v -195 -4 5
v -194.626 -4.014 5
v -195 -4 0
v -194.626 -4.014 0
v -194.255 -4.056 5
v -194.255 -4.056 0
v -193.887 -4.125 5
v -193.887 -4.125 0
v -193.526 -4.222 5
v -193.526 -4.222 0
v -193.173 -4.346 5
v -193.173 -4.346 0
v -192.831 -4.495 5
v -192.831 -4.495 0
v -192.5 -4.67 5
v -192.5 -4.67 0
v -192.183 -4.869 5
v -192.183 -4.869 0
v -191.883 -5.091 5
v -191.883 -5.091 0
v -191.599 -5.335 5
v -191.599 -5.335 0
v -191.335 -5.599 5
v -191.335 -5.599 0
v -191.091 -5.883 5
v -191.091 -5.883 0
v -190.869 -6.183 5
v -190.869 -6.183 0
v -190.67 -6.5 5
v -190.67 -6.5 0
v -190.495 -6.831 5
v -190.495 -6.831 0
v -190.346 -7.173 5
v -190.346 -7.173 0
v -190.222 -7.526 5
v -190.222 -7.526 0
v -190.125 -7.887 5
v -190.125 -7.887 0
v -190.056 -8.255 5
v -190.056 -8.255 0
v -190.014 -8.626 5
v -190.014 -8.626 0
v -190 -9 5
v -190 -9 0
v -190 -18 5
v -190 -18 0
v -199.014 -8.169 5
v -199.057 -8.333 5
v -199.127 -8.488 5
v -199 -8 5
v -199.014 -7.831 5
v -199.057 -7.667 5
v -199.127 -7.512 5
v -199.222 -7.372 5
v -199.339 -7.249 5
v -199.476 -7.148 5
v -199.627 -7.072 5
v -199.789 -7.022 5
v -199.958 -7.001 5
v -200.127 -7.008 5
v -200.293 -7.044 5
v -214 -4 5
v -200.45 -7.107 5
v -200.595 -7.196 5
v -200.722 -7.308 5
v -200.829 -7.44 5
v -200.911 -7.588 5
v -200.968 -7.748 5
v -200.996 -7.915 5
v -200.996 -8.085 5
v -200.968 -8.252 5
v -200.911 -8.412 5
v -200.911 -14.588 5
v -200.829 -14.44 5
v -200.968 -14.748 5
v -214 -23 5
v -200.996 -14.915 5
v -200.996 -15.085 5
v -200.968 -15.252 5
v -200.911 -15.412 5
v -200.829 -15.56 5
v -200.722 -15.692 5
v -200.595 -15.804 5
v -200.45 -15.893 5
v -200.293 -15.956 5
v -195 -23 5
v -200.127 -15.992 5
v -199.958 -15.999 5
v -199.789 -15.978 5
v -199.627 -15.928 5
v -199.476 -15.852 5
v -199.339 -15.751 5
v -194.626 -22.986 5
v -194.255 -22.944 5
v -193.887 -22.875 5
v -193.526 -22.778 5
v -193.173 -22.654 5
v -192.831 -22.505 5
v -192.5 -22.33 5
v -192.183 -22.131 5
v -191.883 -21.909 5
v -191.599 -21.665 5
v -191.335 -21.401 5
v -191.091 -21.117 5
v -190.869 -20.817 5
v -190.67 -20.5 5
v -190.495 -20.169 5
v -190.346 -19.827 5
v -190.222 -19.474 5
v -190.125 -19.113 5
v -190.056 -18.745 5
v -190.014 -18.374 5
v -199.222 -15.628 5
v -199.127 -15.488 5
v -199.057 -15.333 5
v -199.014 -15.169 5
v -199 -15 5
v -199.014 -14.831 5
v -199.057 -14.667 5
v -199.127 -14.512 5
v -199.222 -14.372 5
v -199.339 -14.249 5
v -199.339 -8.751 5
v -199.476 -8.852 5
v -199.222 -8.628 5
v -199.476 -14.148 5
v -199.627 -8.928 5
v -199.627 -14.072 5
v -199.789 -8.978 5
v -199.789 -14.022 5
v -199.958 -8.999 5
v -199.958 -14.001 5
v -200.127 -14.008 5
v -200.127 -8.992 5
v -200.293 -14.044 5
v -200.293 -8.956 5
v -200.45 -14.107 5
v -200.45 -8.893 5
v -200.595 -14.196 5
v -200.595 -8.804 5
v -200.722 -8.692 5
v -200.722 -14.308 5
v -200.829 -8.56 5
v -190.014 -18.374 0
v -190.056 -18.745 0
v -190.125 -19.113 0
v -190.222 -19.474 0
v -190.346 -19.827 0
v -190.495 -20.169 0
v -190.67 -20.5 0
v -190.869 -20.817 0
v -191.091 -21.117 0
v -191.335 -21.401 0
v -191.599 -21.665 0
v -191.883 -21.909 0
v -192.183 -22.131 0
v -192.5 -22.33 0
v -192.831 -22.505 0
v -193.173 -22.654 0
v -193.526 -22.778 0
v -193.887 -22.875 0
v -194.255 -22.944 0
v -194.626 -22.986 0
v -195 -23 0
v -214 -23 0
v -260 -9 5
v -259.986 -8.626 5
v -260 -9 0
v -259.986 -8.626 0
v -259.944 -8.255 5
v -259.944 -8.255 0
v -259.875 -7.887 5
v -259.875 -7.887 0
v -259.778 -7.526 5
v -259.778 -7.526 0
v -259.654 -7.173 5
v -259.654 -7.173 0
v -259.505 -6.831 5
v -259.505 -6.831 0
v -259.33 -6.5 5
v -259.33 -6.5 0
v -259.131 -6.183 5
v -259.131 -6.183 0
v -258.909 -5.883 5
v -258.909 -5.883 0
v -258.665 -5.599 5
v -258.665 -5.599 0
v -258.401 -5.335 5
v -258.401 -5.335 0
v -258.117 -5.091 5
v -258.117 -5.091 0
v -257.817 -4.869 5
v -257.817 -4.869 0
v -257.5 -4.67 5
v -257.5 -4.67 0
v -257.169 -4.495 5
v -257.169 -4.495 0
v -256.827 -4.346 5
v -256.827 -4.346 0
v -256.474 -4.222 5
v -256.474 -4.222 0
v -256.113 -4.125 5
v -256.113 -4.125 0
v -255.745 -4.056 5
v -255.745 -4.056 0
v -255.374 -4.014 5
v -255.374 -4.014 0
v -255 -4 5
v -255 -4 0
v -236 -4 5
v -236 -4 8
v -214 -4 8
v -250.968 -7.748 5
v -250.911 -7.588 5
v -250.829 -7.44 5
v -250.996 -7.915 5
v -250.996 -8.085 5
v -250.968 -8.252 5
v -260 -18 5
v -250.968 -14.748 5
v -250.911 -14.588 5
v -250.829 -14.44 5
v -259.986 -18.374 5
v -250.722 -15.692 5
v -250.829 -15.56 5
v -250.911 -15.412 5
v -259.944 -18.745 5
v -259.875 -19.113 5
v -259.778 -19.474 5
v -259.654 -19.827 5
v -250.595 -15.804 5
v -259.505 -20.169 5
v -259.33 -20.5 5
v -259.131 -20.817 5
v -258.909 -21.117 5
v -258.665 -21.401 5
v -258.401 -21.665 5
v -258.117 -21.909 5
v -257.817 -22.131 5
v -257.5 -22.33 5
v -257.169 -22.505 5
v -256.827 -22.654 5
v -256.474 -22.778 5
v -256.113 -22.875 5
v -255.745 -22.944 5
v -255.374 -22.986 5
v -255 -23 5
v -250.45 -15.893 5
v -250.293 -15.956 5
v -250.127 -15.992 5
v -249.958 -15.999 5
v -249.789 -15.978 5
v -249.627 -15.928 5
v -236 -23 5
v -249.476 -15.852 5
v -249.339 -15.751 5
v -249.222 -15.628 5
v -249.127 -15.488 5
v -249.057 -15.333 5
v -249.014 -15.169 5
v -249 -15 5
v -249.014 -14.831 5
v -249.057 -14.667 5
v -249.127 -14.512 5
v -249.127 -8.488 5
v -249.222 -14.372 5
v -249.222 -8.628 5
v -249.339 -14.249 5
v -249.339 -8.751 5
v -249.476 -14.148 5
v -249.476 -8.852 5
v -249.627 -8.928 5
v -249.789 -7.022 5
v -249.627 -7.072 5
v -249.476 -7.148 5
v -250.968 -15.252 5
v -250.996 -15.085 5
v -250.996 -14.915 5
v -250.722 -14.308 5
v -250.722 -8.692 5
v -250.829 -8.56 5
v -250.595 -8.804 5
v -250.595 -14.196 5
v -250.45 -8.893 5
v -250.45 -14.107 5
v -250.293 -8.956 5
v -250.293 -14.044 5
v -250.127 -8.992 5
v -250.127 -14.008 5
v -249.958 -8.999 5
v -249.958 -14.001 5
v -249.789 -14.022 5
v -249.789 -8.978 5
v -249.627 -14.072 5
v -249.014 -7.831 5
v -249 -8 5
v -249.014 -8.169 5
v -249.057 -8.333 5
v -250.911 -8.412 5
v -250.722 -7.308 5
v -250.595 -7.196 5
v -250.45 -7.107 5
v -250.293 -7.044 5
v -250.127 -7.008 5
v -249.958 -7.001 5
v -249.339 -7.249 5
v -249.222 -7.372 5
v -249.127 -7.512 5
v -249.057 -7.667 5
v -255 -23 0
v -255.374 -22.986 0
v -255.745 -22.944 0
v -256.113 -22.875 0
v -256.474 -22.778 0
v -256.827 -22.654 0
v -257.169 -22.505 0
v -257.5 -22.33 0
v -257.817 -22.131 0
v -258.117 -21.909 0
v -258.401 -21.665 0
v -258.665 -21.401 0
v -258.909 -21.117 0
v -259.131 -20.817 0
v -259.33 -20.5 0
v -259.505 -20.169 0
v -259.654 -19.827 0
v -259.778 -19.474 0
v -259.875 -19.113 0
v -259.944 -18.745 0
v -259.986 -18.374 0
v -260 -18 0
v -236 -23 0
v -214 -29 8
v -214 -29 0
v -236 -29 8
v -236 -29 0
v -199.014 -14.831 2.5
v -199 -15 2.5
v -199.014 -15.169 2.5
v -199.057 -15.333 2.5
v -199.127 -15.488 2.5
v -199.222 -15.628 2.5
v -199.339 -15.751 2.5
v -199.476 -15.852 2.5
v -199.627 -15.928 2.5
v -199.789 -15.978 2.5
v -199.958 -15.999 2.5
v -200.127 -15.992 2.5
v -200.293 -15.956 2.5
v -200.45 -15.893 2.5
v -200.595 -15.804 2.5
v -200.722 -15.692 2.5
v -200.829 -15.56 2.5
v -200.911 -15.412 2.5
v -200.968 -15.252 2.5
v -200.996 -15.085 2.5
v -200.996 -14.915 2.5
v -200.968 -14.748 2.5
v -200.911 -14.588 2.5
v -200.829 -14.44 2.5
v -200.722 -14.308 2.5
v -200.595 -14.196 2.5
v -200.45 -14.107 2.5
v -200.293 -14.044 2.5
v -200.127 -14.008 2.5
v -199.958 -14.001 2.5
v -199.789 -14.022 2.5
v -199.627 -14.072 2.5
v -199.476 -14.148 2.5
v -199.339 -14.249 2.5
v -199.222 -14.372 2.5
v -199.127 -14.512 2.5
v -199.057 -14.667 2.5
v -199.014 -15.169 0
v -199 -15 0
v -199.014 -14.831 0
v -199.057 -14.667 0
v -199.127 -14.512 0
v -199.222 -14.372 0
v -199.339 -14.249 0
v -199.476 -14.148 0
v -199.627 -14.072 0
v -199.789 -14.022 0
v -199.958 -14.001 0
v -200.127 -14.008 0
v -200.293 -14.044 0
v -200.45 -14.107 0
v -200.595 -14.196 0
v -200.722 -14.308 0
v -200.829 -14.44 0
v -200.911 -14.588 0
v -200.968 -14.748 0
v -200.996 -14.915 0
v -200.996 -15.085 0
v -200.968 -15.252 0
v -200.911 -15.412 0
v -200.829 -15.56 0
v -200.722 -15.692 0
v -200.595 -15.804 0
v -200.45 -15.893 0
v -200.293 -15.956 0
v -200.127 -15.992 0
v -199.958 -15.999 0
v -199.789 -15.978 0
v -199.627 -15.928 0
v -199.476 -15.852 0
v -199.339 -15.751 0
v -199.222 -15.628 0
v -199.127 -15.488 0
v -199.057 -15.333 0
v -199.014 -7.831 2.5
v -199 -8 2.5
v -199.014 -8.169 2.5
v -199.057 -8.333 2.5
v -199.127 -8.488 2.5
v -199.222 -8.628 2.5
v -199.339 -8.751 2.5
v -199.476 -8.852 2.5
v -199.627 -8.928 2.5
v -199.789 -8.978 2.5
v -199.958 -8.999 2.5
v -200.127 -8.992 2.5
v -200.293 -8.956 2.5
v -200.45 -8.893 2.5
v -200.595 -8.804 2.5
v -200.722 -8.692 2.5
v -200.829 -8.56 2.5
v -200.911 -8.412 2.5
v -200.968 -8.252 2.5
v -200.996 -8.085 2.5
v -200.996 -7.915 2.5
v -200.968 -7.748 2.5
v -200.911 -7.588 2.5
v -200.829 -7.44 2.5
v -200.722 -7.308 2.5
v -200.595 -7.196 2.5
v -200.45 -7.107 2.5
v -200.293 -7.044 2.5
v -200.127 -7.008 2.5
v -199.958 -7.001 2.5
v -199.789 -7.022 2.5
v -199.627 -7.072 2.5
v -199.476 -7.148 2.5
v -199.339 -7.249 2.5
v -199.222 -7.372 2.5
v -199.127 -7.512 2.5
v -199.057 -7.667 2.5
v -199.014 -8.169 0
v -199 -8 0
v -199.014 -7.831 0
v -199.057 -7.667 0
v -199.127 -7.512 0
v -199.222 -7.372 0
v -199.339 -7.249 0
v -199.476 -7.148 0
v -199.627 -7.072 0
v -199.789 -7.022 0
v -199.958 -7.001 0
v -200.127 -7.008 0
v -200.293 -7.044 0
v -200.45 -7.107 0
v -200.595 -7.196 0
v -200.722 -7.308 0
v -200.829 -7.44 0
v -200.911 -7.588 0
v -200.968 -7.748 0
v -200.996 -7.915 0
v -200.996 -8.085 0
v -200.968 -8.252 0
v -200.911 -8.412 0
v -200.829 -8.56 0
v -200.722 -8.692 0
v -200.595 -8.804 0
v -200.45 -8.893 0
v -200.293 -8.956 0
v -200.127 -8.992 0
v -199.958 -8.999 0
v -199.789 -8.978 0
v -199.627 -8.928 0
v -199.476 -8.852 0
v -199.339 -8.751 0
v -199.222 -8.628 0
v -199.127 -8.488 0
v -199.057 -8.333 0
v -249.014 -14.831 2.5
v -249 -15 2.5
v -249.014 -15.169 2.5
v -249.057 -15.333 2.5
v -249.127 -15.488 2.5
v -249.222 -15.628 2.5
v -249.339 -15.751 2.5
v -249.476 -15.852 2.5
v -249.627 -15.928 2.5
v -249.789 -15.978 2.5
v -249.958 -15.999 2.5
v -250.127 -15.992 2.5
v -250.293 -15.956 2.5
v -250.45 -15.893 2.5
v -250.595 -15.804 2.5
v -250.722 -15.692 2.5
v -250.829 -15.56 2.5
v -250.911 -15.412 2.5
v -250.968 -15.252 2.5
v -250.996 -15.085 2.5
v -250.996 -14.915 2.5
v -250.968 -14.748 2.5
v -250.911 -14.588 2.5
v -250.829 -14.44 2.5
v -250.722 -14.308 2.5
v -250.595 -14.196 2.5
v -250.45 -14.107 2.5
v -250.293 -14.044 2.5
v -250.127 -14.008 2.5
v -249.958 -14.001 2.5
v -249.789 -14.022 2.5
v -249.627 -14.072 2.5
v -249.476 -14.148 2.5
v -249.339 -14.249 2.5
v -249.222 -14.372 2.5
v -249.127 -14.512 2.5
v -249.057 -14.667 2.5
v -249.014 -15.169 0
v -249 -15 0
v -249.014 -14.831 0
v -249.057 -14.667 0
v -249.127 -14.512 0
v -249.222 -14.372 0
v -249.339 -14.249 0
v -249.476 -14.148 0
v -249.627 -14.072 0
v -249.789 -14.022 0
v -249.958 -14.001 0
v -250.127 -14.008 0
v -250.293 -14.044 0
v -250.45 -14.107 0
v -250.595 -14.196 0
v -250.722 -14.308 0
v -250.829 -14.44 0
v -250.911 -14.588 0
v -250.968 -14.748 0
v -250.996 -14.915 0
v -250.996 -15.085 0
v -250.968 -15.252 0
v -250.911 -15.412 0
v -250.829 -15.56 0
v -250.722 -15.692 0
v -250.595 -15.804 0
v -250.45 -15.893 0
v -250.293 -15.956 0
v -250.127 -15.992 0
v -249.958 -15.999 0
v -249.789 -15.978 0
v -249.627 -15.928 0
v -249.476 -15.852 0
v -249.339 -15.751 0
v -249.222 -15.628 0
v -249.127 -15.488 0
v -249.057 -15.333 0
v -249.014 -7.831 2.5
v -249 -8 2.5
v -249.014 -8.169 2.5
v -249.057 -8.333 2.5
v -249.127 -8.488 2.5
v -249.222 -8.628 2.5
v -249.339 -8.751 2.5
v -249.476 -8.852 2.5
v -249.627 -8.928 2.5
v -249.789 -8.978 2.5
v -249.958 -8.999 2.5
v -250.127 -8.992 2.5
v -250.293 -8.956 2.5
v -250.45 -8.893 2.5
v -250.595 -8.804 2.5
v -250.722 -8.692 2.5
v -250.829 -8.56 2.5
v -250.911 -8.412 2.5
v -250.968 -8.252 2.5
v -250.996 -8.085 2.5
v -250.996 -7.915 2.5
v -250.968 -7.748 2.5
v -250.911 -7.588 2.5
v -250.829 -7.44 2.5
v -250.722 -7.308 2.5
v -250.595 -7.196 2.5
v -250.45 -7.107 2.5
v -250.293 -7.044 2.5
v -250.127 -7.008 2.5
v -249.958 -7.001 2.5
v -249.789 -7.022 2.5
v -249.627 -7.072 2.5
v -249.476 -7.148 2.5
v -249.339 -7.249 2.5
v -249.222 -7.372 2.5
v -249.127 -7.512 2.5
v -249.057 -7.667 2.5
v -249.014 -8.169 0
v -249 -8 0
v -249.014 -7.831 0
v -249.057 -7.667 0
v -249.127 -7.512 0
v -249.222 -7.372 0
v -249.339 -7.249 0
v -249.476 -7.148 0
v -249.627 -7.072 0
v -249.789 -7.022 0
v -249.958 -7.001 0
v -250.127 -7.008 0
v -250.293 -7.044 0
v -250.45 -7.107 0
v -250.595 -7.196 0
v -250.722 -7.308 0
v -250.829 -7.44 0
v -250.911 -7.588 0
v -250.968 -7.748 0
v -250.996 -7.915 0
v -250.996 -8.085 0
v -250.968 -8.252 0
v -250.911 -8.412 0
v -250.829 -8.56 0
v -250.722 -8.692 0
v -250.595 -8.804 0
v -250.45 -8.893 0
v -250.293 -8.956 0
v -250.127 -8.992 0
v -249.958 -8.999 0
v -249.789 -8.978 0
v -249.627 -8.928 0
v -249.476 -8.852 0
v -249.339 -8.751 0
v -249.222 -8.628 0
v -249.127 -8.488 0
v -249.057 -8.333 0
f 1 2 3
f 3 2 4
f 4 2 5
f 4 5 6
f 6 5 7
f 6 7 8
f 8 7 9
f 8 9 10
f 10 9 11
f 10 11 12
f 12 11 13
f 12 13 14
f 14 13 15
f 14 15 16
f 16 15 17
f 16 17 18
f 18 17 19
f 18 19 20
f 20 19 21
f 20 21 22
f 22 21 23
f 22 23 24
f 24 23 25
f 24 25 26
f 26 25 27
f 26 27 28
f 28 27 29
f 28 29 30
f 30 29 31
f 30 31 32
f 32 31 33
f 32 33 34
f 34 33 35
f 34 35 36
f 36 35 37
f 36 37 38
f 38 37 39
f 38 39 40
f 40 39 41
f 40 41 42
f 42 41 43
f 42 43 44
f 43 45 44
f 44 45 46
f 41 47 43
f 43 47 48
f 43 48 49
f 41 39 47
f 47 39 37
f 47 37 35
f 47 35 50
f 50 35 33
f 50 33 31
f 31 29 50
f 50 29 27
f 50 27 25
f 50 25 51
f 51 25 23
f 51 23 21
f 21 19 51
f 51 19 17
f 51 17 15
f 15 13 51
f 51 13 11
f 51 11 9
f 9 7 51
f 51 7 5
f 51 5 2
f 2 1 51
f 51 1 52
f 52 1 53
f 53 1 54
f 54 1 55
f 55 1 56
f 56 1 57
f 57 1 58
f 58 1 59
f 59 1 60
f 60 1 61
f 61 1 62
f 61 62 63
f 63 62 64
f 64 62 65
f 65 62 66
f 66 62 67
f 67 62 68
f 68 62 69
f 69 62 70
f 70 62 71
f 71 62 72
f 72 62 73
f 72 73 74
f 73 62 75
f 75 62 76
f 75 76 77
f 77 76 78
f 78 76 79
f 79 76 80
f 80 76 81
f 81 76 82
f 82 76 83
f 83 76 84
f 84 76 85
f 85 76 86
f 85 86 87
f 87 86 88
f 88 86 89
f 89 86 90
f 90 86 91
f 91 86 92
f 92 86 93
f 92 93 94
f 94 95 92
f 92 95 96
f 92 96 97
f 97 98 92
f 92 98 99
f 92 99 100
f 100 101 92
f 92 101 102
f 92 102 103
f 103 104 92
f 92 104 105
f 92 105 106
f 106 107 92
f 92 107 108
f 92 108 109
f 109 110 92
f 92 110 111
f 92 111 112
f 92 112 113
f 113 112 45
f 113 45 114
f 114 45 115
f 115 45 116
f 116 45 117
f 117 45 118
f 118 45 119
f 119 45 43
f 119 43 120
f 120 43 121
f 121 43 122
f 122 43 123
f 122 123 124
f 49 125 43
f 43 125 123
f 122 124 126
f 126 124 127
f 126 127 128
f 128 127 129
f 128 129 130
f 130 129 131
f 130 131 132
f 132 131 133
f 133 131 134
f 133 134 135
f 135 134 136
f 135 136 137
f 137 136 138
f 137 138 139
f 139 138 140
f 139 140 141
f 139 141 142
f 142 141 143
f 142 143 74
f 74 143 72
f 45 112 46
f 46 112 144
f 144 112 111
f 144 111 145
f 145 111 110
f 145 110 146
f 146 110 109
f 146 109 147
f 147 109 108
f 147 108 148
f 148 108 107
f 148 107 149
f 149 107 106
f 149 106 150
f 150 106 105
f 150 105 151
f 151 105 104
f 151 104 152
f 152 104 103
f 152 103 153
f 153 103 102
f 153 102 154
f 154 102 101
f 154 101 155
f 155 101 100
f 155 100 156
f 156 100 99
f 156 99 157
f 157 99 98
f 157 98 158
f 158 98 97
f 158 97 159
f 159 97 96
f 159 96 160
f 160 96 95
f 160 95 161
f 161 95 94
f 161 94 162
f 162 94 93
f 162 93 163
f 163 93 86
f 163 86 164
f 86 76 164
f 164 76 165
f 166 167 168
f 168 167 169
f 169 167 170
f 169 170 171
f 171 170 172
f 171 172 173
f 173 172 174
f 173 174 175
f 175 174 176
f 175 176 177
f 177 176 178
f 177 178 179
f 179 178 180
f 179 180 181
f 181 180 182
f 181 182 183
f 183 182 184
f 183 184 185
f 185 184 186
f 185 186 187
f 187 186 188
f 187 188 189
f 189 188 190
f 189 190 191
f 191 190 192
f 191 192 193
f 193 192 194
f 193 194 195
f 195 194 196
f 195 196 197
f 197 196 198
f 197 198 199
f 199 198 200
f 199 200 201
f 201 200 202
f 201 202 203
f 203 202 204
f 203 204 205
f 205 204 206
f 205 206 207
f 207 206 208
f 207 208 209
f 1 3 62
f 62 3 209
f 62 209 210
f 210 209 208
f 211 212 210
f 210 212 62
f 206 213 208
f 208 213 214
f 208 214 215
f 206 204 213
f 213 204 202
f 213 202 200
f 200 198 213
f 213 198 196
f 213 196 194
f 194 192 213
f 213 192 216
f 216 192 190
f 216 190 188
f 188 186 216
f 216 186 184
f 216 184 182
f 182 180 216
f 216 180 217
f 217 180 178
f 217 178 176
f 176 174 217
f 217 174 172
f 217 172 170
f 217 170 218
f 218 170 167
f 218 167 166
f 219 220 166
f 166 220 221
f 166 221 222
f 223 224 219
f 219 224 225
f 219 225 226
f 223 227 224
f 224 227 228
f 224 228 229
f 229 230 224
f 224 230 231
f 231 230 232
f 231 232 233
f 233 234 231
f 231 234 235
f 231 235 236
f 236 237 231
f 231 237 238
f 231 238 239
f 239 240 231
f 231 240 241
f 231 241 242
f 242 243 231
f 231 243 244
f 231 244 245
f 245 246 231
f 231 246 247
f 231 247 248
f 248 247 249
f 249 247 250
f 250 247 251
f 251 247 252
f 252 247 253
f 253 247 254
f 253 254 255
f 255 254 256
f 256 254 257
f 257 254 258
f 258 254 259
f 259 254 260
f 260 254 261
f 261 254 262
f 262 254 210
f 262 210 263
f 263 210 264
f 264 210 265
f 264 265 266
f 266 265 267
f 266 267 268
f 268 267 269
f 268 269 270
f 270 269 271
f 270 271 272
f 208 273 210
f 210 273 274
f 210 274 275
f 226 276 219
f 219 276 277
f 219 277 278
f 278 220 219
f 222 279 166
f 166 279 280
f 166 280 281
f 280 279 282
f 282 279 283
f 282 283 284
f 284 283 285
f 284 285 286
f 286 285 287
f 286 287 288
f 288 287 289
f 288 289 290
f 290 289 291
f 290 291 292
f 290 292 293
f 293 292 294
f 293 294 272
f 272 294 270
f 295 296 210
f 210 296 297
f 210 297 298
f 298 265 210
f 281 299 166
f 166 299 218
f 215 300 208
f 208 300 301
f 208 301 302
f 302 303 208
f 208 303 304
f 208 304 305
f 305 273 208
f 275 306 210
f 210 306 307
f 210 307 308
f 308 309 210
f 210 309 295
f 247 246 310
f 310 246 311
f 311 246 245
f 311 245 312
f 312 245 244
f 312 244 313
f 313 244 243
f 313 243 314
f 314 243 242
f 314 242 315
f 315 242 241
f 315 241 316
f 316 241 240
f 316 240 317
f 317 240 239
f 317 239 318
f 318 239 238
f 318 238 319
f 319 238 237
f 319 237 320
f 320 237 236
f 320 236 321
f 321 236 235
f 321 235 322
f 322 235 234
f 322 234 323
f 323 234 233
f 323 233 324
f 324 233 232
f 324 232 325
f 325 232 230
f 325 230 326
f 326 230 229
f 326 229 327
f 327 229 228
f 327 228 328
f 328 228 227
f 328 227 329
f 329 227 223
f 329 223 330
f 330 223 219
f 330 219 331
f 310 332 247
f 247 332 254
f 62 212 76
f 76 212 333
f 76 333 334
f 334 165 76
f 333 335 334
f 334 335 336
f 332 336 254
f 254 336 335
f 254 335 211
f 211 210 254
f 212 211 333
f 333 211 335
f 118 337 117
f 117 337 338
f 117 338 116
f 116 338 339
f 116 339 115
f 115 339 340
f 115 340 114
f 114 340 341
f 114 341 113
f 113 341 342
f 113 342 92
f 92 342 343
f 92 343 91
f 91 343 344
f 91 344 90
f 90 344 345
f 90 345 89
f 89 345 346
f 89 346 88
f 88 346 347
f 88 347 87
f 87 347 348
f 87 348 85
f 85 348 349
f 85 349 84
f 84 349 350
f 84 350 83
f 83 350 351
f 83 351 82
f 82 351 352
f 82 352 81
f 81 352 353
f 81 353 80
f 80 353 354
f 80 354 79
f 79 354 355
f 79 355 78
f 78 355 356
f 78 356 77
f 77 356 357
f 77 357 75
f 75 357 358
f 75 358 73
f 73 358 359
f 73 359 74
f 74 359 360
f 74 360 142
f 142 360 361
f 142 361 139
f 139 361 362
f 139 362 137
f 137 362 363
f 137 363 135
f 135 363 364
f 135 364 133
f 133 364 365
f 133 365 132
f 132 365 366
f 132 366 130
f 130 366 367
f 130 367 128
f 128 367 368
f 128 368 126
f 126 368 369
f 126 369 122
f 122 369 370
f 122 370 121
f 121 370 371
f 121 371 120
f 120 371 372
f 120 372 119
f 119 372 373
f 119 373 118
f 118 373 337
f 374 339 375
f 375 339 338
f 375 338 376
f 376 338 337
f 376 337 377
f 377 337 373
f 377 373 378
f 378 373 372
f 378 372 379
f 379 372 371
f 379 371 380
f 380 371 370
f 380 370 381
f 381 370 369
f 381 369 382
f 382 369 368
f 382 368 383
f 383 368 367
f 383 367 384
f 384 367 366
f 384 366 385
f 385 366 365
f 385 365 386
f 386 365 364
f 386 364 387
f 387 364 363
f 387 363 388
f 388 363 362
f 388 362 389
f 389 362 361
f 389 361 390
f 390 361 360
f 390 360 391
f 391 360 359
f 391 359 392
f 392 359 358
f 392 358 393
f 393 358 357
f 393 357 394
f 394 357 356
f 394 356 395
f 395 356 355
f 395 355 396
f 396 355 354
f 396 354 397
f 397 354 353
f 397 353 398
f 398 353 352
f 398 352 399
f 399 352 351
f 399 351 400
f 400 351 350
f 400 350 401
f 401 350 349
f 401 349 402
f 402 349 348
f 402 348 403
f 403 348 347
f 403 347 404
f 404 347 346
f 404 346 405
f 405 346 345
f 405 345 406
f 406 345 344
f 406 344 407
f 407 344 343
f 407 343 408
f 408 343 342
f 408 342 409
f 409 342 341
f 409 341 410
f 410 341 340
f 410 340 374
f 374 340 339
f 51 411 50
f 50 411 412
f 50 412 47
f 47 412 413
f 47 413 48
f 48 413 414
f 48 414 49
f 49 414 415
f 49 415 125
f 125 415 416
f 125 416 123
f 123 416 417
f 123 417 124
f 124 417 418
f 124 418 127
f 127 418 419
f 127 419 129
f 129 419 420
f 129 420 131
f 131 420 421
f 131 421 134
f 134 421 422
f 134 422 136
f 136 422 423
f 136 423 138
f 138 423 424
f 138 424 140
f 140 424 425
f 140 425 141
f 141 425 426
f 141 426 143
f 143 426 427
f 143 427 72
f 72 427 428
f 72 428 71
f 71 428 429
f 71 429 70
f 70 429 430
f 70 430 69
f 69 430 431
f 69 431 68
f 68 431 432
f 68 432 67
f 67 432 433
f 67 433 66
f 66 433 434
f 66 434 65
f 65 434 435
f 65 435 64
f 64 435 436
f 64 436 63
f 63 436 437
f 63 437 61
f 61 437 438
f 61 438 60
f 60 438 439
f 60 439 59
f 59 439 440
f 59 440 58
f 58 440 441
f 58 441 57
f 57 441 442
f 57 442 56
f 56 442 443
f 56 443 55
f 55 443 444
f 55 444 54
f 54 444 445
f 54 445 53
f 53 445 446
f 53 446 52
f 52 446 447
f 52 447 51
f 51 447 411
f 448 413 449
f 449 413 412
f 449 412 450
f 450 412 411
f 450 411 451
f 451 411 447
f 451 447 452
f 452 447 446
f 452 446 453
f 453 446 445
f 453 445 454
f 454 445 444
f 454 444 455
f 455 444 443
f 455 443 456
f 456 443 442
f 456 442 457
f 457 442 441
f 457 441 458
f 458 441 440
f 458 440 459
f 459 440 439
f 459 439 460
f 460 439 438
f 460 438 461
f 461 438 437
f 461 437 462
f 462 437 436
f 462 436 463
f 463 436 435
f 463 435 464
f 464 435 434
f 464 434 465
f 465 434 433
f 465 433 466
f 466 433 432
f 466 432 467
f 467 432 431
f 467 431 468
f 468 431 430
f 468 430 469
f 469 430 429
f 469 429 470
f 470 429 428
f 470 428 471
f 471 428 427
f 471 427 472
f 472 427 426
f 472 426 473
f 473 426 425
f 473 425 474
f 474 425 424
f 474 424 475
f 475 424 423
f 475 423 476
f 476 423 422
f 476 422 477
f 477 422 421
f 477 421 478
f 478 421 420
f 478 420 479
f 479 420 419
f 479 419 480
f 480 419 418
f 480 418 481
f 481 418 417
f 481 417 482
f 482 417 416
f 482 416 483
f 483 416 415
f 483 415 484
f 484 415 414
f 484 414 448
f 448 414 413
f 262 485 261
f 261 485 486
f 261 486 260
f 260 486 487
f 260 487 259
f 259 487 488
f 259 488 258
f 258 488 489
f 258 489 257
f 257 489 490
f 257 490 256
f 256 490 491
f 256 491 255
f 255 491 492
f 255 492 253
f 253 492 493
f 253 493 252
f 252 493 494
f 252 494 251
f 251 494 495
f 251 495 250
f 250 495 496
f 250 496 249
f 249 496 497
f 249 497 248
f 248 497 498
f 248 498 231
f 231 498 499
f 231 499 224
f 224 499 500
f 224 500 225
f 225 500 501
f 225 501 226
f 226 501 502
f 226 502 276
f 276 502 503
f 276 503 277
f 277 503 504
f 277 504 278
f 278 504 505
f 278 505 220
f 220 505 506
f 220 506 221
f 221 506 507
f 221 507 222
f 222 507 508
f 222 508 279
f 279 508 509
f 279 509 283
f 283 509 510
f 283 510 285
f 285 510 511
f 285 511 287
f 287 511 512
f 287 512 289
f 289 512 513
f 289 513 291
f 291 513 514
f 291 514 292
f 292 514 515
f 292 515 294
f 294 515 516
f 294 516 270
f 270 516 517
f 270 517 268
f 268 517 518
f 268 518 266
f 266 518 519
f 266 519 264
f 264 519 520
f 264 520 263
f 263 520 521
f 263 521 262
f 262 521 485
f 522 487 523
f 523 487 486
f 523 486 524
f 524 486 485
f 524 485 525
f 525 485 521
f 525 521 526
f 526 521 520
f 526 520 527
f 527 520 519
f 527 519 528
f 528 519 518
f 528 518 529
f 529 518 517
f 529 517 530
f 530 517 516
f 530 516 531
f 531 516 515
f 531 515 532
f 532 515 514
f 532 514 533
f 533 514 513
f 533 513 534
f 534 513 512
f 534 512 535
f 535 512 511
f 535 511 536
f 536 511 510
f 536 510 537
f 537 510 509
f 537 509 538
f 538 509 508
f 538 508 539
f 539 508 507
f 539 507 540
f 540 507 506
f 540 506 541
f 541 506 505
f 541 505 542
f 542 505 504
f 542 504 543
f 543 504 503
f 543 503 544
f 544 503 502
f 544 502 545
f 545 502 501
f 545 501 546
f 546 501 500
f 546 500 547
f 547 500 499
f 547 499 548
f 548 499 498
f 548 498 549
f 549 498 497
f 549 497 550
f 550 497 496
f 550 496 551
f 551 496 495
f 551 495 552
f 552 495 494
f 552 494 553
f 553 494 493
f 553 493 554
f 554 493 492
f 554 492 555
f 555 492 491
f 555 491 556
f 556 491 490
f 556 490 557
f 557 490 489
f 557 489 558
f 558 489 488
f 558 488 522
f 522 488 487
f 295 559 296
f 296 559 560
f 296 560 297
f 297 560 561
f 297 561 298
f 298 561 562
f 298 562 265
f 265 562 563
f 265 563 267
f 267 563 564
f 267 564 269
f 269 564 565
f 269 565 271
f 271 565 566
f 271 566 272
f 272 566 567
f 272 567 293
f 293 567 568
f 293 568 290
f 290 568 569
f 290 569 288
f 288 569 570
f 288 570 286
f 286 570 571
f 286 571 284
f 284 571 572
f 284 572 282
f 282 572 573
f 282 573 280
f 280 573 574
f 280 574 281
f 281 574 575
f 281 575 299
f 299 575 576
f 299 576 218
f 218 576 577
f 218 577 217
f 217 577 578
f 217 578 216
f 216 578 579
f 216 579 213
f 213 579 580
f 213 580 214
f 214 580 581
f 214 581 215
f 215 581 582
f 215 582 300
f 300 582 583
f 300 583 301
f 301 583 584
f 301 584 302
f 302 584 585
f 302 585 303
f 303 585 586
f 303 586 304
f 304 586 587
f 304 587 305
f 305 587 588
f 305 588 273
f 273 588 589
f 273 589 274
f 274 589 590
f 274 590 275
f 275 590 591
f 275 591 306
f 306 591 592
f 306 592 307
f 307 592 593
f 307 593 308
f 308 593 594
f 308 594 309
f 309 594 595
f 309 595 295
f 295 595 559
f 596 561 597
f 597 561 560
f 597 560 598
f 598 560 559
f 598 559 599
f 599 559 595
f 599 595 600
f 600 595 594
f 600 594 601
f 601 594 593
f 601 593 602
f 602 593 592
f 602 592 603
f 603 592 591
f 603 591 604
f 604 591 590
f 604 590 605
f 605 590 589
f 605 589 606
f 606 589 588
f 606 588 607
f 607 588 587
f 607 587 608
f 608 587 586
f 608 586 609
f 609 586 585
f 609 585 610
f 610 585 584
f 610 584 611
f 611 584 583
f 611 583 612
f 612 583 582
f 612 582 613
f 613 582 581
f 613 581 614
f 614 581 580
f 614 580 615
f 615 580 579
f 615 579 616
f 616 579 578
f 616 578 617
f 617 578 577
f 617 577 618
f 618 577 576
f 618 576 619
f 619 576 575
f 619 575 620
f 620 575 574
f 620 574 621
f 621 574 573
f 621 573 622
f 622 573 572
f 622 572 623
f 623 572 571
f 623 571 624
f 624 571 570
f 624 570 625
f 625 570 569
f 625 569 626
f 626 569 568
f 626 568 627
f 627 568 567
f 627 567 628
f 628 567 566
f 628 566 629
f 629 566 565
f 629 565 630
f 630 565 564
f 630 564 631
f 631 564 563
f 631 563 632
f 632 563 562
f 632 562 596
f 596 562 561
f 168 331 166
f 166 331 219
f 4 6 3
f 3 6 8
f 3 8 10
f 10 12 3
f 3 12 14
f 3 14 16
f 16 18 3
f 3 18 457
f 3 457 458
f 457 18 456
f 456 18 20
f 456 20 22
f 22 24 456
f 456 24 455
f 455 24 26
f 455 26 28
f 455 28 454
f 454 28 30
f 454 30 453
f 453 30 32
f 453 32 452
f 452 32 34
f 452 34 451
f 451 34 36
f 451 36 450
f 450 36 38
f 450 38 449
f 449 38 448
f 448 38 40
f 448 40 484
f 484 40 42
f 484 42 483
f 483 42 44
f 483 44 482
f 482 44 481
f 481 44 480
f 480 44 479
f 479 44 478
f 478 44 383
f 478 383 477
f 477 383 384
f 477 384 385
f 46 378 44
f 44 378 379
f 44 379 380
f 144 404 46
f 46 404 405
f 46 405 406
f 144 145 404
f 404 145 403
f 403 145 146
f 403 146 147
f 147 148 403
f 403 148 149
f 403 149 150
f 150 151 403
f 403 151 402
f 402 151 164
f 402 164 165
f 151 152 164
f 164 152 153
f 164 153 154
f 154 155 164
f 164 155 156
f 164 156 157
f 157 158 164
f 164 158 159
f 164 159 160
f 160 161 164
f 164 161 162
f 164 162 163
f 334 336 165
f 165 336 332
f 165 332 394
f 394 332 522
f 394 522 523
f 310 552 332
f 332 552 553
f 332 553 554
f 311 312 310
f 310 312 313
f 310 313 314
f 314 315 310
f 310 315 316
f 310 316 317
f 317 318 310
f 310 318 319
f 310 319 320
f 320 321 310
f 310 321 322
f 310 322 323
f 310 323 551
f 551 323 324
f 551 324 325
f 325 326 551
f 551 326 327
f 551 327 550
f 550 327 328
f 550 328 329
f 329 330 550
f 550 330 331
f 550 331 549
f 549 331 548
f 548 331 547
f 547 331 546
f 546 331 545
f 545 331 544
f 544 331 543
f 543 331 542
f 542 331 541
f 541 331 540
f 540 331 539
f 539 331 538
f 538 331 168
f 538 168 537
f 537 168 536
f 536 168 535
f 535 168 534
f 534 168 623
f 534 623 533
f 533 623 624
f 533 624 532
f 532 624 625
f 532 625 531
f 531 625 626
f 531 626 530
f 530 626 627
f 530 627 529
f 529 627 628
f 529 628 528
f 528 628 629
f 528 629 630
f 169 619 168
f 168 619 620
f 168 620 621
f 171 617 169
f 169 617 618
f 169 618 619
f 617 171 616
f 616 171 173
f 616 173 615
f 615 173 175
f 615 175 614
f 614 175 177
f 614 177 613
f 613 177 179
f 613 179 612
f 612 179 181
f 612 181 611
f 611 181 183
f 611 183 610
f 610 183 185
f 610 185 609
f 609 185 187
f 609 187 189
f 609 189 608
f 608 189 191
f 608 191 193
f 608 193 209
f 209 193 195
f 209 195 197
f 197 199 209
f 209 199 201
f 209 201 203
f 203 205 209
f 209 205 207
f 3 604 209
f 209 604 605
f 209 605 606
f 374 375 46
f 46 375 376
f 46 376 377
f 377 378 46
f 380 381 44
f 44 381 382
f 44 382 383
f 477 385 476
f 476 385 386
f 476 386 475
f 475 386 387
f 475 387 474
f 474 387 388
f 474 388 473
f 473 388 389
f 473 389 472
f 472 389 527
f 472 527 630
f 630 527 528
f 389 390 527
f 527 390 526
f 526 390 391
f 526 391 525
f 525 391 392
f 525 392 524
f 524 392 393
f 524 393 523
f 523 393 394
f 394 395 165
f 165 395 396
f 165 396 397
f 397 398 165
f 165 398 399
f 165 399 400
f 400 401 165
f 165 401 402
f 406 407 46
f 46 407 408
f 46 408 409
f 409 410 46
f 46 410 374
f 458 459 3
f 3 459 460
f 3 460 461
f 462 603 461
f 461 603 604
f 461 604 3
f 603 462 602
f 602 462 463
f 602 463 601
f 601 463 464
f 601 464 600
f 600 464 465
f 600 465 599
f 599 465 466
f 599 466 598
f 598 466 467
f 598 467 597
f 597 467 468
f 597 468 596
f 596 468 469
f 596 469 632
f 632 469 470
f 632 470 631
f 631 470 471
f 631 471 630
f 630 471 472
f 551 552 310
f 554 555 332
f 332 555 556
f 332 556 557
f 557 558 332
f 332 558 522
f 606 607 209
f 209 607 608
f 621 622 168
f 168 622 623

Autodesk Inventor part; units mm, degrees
ref_plane "YZ Plane" through (0, 0, 0) normal (1, 0, 0) x (0, 1, 0)
ref_plane "XZ Plane" through (0, 0, 0) normal (0, 1, 0) x (-1, 0, 0)
ref_plane "XY Plane" through (0, 0, 0) normal (0, 0, 1) x (1, 0, 0)
sketch "Sketch1" plane through (0, 0, 0) normal (0, 0, 1) x (1, 0, 0)
  line L0 (-350, 95) -> (350, 95)
  line L1 (350, 95) -> (350, -95)
  line L2 (350, -95) -> (-350, -95)
  line L3 (-350, -95) -> (-350, 95)
  circle A0 centre (-250, 55) radius 10
  circle A1 centre (-250, -15) radius 10
  circle A2 centre (250, 55) radius 10
  circle A3 centre (250, -15) radius 10
  line L4 (-110, 95) -> (110, 95)
  point P0 (0, 0)
  point P1 (0, 95)
  point P2 (350, 0)
  point P3 (0, -155)
  dimension "d0" = 700
  dimension "d1" = 190
  dimension "d2" = 20
  dimension "d3" = 70
  dimension "d4" = 40
  dimension "d7" = 20
  dimension "d8" = 70
  dimension "d9" = 500
  dimension "d10" = 100
extrude "Extrusion1" add sketch "Sketch1" along normal blind 50
sketch "Sketch2" plane through (0, 0, 50) normal (0, 0, 1) x (1, 0, 0)
  line L0 (-110, 95) -> (110, 95)
  line L1 (110, 95) -> (110, -155)
  line L2 (110, -155) -> (-110, -155)
  line L3 (-110, -155) -> (-110, 95)
  line L4 (350, 95) -> (-350, 95) projected
  point P0 (0, 0)
  point P1 (0, -155)
  dimension "d15" = 220
  dimension "d16" = 250
extrude "Extrusion2" add sketch "Sketch2" along normal blind 30
sketch "Sketch3" plane through (0, 0, 50) normal (0, 0, -1) x (-1, 0, 0)
  line L0 (110, -95) -> (-110, -95) projected
  line L1 (-110, -95) -> (-110, -155) projected
  line L2 (-110, -155) -> (110, -155) projected
  line L3 (110, -155) -> (110, -95) projected
  point P0 (0, 0)
extrude "Extrusion3" add sketch "Sketch3" along normal blind 50
fillet "Fillet1" radius 50 4 edges at (-350, -95, 25) (-350, 95, 25) (350, -95, 25) (350, 95, 25)
scale "Scale1" factors (0.1, 0.1, 0.1) then translate (-225, -13.5, 0) bodies 1
equation "\"d7\" = d2"
equation "\"d10\" = -0.5 * d9 + 0.5 * d0"
properties part number "RotationLock"
